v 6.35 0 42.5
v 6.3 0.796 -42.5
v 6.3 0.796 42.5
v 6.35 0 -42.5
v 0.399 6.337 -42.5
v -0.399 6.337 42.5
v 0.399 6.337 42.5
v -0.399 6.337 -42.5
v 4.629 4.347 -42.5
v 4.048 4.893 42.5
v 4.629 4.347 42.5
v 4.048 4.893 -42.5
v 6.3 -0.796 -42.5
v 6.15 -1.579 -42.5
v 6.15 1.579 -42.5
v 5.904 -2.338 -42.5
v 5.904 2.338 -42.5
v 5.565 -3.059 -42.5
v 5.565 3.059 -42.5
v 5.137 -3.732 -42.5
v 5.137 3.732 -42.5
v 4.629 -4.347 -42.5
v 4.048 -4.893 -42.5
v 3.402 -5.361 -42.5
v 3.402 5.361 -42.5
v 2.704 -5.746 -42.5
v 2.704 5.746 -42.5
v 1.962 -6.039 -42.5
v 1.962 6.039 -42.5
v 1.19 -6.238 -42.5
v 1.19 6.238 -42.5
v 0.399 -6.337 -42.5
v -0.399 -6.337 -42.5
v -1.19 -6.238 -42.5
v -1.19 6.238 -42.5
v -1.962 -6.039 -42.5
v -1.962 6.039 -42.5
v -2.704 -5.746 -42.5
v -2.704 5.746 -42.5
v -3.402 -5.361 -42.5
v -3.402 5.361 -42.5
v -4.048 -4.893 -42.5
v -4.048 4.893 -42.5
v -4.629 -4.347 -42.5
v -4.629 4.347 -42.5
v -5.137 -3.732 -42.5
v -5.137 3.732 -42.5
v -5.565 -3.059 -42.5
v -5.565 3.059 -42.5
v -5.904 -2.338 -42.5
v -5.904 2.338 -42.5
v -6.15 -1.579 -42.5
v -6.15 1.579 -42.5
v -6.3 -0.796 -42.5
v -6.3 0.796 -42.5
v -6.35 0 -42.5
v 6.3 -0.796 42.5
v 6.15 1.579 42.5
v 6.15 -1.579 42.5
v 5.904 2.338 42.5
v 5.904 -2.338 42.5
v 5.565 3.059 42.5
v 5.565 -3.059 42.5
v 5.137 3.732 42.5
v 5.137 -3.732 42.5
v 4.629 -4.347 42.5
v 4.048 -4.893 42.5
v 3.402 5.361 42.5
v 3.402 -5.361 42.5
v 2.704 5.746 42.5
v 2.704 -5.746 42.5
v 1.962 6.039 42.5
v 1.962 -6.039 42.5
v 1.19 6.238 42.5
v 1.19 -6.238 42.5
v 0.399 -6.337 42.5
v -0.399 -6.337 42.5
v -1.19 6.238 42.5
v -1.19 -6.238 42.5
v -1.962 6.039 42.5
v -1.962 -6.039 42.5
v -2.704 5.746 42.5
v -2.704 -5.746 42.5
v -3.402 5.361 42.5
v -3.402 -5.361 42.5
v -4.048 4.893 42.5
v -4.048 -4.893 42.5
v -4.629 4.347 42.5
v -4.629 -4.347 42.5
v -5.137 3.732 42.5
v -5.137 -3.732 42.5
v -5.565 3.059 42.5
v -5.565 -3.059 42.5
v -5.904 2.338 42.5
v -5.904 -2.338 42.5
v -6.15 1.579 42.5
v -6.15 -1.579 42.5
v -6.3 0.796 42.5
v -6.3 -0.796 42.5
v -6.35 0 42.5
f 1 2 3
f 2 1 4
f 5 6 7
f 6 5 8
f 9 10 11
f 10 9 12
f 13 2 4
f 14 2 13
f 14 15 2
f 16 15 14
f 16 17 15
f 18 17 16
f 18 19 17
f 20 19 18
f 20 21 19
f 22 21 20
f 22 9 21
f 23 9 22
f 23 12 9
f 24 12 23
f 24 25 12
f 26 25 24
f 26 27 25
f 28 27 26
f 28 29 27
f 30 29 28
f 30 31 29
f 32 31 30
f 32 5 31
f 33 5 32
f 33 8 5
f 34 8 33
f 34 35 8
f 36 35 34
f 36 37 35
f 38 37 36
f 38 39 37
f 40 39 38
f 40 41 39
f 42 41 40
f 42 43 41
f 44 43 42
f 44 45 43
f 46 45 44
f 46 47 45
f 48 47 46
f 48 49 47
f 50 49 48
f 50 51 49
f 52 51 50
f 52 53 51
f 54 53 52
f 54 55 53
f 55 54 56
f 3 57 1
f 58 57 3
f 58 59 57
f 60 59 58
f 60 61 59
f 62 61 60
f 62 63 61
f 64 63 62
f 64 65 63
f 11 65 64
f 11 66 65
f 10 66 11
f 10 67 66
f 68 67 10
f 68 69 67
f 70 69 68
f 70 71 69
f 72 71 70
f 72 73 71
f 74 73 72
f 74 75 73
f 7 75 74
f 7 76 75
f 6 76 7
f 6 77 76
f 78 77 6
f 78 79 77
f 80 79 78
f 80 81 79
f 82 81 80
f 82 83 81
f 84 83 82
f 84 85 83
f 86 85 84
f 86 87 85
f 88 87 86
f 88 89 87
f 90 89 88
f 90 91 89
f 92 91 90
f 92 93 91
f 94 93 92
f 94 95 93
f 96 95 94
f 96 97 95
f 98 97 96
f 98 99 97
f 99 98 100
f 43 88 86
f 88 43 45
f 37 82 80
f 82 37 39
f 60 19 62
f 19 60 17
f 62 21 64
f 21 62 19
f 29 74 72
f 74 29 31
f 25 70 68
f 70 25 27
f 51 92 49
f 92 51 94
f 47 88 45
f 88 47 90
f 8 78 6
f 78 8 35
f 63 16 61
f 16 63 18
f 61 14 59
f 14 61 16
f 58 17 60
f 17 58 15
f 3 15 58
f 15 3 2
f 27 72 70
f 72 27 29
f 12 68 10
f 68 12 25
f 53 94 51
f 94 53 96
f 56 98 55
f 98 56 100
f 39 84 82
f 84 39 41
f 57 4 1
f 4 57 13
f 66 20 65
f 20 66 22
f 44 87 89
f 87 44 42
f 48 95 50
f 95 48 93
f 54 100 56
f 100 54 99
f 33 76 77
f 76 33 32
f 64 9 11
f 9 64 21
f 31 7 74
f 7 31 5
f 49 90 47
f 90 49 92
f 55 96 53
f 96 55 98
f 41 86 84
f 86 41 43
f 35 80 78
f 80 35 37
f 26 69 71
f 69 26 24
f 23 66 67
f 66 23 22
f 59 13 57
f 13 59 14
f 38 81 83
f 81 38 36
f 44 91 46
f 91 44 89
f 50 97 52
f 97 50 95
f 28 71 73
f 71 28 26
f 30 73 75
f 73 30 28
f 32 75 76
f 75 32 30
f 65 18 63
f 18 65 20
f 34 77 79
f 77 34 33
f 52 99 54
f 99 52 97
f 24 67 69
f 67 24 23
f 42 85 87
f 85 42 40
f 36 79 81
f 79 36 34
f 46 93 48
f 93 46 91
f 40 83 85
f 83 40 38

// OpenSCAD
$fn = 50;


difference() {
	union() {
		translate(v = [0, 0, -42.5000000000]) {
			cylinder(h = 85, r = 6.3500000000);
		}
	}
	union() {
		translate(v = [0, 0, -100.0000000000]) {
			cylinder(h = 200, r = 0);
		}
	}
}
